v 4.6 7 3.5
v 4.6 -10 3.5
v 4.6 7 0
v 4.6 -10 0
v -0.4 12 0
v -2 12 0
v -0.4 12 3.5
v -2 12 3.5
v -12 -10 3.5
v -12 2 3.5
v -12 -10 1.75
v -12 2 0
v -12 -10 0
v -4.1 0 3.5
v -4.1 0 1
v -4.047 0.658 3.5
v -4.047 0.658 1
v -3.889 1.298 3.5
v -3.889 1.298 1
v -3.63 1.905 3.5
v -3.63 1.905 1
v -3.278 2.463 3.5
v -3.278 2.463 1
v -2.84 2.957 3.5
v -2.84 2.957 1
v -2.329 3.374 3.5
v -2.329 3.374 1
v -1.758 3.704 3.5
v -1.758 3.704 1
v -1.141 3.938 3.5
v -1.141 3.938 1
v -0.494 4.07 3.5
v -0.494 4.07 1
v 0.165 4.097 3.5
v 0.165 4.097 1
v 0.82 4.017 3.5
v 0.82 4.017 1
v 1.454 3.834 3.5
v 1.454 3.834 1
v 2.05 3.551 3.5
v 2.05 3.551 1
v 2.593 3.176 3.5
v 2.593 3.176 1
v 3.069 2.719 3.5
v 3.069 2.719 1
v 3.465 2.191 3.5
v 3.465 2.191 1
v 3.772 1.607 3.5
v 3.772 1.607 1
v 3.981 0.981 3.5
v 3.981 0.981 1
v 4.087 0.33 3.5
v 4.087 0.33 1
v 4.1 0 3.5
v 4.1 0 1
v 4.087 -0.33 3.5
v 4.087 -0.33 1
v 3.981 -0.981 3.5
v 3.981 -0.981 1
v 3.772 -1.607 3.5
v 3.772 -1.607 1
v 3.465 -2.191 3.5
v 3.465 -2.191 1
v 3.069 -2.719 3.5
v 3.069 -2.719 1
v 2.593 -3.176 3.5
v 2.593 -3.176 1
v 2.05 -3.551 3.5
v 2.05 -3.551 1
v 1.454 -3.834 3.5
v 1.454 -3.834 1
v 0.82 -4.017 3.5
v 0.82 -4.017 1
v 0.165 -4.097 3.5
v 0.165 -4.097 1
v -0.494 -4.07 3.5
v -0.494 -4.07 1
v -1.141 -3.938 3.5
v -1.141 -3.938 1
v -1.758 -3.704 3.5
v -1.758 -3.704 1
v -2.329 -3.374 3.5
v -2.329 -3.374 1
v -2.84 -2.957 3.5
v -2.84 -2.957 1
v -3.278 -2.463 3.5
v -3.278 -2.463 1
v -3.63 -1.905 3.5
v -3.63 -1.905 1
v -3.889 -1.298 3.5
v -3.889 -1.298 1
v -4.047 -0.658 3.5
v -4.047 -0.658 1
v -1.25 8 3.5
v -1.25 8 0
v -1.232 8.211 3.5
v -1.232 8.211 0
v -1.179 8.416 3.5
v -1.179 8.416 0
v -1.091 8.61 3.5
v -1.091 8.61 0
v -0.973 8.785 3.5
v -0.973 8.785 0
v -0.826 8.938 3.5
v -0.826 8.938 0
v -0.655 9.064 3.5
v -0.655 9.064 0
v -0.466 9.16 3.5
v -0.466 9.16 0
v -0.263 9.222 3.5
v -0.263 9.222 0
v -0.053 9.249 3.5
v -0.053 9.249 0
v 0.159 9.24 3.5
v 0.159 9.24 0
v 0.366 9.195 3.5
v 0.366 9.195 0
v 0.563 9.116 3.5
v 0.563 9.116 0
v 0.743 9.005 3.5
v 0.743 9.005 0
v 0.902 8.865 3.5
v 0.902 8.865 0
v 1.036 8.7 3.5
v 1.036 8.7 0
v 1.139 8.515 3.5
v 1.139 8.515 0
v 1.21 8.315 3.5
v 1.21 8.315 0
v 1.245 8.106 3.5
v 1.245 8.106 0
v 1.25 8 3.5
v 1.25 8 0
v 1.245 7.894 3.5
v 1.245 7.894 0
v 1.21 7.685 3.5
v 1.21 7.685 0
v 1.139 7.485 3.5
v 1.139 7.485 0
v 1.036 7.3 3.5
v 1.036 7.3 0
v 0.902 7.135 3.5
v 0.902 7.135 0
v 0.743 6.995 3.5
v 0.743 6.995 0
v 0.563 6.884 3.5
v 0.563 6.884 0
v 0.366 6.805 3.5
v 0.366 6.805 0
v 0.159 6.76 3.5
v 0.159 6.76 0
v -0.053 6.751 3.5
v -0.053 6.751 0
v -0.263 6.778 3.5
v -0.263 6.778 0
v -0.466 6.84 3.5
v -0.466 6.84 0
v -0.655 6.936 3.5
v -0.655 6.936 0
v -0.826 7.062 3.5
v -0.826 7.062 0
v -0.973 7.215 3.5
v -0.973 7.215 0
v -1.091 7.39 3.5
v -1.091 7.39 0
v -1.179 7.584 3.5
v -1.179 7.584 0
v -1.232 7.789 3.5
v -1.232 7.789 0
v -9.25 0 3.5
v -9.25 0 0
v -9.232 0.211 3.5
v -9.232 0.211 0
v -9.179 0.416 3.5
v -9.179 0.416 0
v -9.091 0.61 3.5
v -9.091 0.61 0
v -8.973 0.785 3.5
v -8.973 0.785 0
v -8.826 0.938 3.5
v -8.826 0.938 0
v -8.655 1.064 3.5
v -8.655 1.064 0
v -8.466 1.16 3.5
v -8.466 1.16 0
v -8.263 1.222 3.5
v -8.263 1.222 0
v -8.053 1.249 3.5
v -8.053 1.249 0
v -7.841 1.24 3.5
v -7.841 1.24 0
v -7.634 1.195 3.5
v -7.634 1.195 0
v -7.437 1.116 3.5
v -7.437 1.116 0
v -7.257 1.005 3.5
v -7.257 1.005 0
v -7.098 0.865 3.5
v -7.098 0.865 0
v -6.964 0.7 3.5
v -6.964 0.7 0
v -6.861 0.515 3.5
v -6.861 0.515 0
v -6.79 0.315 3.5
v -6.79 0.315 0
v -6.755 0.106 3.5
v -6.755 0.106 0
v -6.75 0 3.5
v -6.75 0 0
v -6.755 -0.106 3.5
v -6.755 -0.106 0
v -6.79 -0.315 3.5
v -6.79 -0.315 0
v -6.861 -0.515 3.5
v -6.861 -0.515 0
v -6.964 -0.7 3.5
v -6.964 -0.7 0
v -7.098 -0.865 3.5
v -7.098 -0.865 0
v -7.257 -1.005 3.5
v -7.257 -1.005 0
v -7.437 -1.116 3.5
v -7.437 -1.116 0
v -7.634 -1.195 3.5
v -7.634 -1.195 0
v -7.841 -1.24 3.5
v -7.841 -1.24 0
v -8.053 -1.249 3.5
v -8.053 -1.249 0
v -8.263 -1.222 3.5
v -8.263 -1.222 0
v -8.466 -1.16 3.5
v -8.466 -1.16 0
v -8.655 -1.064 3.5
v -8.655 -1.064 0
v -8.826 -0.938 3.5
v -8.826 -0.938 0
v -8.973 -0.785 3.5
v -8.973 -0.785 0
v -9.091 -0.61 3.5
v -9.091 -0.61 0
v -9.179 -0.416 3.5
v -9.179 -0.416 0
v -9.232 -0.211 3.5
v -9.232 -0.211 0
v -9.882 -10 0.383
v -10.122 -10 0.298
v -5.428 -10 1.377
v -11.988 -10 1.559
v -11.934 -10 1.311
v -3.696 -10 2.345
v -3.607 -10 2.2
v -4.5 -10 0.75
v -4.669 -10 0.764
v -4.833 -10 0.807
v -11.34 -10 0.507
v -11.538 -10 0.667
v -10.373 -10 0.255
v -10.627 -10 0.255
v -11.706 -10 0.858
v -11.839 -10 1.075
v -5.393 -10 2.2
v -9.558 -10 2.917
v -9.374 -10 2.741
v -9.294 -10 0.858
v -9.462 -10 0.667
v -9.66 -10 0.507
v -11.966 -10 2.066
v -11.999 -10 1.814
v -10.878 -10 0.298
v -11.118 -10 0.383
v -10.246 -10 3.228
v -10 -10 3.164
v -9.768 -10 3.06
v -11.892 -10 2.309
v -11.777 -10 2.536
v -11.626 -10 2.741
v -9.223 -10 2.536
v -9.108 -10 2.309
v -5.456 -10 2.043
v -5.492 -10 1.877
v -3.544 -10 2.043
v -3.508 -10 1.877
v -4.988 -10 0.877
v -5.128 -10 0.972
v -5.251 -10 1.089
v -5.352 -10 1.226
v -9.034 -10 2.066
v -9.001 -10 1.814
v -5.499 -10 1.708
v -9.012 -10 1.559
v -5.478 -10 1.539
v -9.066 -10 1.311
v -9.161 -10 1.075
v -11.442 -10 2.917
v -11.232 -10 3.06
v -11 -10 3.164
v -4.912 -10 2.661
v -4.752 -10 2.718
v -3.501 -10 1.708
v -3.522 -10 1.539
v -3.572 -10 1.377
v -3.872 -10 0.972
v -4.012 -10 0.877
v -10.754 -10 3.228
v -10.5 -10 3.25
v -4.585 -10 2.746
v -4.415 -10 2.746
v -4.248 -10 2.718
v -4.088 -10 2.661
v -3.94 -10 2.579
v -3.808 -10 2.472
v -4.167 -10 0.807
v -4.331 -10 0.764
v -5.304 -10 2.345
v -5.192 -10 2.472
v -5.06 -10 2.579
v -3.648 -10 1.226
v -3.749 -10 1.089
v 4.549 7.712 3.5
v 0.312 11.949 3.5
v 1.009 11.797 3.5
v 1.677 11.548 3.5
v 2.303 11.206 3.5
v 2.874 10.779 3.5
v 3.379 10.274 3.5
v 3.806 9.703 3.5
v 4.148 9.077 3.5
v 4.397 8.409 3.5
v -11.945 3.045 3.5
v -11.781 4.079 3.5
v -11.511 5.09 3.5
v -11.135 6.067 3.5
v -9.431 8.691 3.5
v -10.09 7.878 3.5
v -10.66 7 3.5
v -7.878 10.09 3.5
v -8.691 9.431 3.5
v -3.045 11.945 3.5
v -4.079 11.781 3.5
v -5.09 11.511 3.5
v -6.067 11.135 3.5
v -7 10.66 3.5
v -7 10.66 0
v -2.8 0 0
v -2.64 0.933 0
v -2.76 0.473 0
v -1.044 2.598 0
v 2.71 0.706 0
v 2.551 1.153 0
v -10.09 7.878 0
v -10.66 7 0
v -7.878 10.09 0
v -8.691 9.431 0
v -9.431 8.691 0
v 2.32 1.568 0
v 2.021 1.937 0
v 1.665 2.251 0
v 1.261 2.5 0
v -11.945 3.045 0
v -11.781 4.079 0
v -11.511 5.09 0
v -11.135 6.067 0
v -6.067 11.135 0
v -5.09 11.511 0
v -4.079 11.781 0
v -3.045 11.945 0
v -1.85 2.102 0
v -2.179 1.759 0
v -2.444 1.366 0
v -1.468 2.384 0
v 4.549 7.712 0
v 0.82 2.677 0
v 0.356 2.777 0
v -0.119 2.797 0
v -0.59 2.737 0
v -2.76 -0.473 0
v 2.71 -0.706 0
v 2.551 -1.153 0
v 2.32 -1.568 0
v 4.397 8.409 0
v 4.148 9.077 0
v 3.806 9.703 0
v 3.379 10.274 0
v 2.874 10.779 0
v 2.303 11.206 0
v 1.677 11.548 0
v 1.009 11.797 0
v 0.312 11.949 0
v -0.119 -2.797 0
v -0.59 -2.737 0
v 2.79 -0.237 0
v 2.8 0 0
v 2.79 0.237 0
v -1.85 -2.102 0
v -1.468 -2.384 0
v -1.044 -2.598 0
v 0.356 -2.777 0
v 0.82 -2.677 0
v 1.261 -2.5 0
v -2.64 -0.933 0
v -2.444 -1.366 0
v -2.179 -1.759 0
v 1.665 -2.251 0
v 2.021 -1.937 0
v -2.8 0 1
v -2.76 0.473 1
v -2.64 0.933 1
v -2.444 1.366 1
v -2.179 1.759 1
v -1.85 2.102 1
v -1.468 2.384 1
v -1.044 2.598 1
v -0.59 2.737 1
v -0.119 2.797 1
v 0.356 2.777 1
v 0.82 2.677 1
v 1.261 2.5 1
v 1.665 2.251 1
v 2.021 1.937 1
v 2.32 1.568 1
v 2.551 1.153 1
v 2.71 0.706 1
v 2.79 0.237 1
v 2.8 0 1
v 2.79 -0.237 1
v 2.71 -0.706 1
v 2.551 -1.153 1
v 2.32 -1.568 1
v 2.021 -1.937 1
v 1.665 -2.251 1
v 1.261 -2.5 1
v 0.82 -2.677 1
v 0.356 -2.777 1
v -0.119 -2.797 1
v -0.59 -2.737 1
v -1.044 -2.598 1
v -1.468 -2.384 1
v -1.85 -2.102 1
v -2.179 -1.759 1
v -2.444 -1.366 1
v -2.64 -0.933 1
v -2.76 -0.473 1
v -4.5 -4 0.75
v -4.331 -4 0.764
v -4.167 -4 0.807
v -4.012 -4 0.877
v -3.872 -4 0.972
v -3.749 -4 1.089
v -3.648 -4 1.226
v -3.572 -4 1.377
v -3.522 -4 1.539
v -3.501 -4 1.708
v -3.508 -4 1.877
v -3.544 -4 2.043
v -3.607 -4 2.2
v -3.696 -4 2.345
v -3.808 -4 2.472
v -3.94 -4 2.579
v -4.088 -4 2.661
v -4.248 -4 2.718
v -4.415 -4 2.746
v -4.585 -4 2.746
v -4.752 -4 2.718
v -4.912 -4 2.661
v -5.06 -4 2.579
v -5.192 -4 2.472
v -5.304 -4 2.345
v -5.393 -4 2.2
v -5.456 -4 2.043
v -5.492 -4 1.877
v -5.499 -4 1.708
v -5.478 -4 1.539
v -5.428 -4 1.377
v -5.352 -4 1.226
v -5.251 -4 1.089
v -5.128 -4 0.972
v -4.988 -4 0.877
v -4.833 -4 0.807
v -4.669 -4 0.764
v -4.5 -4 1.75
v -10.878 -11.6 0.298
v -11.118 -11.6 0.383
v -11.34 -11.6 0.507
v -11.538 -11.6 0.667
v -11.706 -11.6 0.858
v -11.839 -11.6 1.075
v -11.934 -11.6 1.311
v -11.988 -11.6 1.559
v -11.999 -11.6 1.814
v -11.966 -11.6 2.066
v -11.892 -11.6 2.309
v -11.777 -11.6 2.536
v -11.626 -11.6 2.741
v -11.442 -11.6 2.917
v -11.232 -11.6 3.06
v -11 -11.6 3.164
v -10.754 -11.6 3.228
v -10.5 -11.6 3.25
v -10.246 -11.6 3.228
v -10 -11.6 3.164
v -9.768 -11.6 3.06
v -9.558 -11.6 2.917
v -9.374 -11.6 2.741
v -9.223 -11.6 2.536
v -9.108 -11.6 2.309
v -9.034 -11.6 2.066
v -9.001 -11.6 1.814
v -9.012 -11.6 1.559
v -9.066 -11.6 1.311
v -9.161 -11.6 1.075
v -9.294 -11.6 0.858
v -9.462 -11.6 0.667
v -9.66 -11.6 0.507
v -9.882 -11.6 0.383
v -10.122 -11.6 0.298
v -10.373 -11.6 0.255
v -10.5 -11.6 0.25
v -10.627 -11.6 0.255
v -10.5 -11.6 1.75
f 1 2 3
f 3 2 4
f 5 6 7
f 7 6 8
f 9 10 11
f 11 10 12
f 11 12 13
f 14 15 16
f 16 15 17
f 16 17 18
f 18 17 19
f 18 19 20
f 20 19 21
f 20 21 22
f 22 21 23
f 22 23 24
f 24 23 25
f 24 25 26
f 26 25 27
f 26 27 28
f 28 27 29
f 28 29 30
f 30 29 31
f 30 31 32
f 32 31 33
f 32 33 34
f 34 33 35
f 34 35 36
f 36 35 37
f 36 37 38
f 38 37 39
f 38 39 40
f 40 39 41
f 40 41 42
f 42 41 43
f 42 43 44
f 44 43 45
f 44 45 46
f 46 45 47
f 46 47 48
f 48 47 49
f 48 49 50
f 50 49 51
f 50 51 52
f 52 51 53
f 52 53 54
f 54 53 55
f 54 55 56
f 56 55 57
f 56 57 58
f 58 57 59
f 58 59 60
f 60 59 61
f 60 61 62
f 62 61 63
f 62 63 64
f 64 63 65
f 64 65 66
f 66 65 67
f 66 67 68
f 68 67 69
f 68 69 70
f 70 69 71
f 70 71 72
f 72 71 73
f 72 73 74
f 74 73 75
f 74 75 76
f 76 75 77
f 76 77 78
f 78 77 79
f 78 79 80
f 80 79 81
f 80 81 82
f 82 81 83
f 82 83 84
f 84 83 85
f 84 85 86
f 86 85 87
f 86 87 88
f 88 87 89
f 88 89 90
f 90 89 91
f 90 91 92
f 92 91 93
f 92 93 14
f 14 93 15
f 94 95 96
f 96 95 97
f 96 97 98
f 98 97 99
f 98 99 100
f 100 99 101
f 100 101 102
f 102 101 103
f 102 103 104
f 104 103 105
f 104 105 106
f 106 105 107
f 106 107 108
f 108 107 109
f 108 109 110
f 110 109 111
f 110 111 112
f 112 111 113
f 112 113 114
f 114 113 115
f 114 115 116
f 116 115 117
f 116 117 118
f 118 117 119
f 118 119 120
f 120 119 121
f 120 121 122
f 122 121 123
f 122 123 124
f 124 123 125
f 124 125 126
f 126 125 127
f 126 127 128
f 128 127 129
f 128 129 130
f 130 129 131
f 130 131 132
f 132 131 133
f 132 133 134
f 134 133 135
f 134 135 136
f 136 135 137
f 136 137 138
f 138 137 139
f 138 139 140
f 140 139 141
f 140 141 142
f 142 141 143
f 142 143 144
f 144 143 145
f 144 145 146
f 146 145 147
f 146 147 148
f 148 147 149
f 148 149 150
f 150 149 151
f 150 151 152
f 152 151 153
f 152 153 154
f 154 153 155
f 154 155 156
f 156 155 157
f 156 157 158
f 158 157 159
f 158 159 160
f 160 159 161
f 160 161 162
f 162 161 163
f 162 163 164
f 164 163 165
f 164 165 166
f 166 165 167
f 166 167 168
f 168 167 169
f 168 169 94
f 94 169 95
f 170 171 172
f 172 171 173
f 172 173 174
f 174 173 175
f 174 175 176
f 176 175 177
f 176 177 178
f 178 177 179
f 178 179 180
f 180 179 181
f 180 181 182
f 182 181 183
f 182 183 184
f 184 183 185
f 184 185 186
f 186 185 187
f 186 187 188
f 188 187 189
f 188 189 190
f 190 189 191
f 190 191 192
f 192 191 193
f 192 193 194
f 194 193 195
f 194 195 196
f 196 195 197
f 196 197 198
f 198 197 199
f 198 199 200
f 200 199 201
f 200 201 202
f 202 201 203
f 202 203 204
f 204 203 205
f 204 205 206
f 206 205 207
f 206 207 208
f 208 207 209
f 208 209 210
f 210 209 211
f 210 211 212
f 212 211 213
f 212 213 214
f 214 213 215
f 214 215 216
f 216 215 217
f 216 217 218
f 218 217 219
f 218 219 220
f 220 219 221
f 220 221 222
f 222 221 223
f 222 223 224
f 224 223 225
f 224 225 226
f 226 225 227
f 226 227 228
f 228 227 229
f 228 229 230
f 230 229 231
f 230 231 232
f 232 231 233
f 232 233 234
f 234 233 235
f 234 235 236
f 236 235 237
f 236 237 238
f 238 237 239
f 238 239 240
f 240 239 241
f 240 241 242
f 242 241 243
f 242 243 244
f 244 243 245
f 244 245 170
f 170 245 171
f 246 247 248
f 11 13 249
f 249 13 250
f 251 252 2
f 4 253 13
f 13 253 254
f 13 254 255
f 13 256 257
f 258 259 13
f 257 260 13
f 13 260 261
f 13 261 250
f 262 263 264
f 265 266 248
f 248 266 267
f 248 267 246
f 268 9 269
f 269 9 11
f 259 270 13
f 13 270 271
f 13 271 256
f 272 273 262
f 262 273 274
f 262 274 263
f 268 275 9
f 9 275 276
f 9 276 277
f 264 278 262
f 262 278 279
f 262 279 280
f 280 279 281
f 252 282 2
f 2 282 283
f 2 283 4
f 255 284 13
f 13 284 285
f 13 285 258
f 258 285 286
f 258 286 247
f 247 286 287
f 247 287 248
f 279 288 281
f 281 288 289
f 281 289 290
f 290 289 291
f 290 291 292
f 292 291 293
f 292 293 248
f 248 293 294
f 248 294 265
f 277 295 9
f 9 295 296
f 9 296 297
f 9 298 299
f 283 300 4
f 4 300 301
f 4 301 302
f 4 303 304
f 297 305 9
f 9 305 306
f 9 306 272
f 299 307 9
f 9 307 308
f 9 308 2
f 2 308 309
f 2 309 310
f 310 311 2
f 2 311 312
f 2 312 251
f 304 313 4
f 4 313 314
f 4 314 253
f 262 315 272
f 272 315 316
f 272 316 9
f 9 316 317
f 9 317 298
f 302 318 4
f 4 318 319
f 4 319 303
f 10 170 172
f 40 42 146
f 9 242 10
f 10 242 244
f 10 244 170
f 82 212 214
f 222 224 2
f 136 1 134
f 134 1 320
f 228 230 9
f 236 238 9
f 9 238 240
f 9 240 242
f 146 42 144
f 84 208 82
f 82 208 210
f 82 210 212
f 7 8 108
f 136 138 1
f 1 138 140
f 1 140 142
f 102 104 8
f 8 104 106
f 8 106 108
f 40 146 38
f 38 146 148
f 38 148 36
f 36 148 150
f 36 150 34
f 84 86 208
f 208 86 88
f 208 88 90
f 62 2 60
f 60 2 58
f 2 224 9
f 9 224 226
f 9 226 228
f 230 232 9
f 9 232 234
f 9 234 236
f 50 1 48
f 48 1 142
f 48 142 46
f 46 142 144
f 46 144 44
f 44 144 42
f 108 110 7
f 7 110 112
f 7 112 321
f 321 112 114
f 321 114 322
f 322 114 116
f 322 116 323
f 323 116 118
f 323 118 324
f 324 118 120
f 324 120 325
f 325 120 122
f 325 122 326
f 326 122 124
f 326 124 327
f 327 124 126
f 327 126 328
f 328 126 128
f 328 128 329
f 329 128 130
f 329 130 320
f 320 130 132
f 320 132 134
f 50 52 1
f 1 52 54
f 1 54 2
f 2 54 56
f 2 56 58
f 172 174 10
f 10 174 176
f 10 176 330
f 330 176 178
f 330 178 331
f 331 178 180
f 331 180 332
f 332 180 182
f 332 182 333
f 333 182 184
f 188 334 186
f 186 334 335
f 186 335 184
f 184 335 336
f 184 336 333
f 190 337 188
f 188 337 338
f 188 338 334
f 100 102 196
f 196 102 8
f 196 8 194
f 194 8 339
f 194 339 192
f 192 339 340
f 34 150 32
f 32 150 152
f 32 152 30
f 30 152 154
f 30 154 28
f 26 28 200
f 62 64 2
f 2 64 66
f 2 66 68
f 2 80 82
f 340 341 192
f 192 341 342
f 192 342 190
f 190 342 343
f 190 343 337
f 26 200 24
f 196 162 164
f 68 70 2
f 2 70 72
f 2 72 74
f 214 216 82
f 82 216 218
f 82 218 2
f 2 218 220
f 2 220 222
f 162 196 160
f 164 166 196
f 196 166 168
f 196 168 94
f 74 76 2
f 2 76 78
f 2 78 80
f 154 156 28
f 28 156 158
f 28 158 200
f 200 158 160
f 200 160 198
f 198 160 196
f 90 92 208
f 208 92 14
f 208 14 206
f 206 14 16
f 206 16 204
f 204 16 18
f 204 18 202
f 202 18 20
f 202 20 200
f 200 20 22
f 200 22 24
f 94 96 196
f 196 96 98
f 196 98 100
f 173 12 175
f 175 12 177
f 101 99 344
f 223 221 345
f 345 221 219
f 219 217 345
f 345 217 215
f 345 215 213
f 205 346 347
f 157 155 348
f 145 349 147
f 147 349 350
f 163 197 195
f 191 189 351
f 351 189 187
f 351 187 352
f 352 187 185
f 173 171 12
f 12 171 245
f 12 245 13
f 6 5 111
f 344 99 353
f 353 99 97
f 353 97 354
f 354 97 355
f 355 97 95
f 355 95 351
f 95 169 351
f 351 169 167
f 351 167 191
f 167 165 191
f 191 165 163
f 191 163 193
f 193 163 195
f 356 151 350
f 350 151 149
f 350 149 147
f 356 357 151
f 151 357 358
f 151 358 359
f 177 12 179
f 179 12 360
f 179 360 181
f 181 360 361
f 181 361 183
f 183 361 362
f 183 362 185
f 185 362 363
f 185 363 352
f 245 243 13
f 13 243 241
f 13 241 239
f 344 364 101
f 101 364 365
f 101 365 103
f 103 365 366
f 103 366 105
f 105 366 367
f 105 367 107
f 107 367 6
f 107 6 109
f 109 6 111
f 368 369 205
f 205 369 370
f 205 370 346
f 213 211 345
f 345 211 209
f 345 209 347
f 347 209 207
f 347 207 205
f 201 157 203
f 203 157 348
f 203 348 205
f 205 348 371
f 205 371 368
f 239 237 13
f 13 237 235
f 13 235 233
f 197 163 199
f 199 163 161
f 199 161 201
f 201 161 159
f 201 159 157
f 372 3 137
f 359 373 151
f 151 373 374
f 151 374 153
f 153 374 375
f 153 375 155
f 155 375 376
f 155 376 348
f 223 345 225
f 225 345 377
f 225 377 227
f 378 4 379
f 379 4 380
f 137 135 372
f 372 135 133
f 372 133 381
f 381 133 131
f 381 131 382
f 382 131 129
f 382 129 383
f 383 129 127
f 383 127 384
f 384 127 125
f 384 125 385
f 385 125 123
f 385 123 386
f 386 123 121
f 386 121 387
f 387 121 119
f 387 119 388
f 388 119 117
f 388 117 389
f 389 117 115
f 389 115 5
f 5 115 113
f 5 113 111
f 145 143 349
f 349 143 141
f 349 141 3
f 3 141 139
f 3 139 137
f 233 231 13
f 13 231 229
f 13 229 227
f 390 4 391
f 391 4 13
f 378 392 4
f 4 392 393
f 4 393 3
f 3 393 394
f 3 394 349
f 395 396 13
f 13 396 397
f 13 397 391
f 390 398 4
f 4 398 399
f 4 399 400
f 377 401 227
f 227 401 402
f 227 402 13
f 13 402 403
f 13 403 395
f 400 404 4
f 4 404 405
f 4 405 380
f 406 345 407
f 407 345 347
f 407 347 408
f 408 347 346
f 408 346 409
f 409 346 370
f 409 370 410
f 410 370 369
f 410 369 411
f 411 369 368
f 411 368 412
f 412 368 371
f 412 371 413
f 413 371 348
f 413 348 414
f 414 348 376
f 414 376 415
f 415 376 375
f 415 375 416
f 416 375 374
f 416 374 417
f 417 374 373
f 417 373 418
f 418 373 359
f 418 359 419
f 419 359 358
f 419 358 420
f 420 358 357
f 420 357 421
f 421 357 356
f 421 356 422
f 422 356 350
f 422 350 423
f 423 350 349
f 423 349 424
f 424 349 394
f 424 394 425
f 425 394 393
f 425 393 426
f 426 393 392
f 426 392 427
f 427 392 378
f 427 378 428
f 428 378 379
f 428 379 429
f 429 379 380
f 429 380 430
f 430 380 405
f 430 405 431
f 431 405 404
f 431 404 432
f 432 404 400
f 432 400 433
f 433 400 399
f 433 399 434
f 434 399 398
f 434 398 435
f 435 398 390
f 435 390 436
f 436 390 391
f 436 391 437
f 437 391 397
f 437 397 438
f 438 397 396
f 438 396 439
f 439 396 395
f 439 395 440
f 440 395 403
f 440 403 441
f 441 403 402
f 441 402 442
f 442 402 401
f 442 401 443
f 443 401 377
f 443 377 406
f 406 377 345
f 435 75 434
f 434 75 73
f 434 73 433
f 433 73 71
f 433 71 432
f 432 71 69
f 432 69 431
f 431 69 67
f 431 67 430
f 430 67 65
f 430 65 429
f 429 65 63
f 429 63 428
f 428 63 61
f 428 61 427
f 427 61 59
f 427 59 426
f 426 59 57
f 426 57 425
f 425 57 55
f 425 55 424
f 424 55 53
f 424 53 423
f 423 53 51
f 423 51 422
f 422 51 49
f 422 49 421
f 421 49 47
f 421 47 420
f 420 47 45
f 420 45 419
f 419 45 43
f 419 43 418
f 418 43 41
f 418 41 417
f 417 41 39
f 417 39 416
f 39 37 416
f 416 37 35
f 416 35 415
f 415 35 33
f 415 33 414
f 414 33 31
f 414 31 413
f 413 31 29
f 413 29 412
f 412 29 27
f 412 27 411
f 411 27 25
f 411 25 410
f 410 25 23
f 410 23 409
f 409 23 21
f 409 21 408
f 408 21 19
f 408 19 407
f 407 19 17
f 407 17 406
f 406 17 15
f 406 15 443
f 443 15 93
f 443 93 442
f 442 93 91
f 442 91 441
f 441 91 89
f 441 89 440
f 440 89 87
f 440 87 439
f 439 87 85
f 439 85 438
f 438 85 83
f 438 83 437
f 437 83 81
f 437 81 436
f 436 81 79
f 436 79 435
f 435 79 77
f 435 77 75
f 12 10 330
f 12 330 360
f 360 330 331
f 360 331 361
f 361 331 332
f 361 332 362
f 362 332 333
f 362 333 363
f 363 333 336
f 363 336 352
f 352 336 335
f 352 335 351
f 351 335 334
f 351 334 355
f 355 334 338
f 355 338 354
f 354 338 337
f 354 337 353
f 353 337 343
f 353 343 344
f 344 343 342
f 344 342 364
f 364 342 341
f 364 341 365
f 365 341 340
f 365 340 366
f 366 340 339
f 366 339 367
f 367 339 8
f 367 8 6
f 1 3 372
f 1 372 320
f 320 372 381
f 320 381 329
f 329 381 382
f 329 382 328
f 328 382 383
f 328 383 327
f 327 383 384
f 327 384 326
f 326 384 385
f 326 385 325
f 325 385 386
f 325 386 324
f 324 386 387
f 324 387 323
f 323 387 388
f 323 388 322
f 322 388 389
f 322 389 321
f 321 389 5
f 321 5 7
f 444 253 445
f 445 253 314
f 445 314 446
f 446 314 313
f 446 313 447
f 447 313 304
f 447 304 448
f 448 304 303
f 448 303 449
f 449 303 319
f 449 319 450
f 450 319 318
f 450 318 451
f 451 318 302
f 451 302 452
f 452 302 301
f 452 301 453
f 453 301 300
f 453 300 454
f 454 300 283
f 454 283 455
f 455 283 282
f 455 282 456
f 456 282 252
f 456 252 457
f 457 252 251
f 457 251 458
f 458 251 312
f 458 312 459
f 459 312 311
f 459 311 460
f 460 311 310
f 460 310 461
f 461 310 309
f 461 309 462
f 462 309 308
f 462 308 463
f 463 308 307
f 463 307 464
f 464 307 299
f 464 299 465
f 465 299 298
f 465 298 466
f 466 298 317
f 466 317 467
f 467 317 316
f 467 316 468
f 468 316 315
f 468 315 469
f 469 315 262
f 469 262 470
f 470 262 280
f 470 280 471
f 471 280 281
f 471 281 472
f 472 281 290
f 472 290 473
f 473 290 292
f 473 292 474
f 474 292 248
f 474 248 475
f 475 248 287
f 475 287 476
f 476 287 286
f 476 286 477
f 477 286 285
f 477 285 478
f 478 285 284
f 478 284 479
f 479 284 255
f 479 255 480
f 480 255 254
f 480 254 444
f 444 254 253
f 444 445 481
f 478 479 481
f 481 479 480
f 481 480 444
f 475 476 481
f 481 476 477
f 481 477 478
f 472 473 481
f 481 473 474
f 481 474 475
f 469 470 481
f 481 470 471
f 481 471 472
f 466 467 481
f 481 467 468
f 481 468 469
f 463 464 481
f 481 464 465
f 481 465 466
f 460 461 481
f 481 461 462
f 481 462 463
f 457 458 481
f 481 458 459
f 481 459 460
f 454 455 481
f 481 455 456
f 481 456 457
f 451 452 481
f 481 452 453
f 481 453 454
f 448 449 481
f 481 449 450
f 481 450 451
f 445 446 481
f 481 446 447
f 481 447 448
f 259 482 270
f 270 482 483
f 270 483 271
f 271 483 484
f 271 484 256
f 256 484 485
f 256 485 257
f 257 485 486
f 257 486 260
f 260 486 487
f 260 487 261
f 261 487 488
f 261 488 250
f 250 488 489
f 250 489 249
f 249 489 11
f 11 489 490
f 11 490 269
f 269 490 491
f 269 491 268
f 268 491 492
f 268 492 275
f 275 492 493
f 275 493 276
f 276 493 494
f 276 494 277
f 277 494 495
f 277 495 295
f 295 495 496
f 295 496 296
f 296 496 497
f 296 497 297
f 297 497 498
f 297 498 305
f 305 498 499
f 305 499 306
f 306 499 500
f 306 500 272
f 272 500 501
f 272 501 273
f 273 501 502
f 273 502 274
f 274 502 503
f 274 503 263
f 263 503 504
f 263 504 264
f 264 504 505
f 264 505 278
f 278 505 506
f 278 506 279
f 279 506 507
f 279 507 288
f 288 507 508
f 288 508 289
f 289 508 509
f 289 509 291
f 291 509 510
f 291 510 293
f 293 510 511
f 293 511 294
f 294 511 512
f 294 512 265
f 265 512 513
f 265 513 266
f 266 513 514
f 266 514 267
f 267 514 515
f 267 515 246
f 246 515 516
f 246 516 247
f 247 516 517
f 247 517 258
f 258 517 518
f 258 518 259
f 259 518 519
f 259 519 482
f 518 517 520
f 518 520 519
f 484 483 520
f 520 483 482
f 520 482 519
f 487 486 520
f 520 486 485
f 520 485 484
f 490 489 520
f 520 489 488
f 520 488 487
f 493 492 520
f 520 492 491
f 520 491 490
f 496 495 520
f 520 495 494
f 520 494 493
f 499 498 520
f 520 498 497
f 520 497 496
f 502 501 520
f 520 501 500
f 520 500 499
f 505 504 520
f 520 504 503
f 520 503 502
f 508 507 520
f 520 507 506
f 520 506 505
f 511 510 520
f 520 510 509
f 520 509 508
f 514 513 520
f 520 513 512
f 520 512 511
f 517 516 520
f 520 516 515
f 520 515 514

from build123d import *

# Parameters (mm, degrees)
SKETCH_1_W          = 16.6
SKETCH_1_H          = 22
SKETCH_1_R          = 1.25
SKETCH_1_R_2        = 4.1
EXTRUDE_1_DEPTH     = 3.5
SKETCH_1_3_R        = 4.1
SKETCH_1_3_R_2      = 2.8
EXTRUDE_2_DEPTH     = 1
FILLET_1_R          = 10
FILLET_2_R          = 5
SKETCH_2_R          = 1
CUT_EXTRUDE_1_DEPTH = 6
SKETCH_2_3_R        = 1.5
EXTRUDE_3_DEPTH     = 1.6


with BuildPart() as part:
    # 草图1 → 凸台-拉伸1 (new body)
    with BuildSketch(Plane.XY):
        with Locations((-3.7, 1)):
            Rectangle(SKETCH_1_W, SKETCH_1_H)
        with Locations((-8, 0)):
            Circle(SKETCH_1_R, mode=Mode.SUBTRACT)
        Circle(SKETCH_1_R_2, mode=Mode.SUBTRACT)
        with Locations((0, 8)):
            Circle(SKETCH_1_R, mode=Mode.SUBTRACT)
    extrude(amount=EXTRUDE_1_DEPTH)

    # 草图1<3> → 凸台-拉伸2 (add)
    with BuildSketch(Plane.XY):
        Circle(SKETCH_1_3_R)
        Circle(SKETCH_1_3_R_2, mode=Mode.SUBTRACT)
    extrude(amount=EXTRUDE_2_DEPTH)

    # 圆角1
    fillet_1_edges = [part.edges().sort_by_distance(p)[0] for p in [
        (-12, 12, 1.75),
    ]]
    fillet(fillet_1_edges, radius=FILLET_1_R)

    # 圆角2
    fillet_2_edges = [part.edges().sort_by_distance(p)[0] for p in [
        (4.6, 12, 1.75),
    ]]
    fillet(fillet_2_edges, radius=FILLET_2_R)

    # 草图2 → 切除-拉伸1 (cut)
    with BuildSketch(Plane.XZ.offset(10)):
        with Locations((-4.5, 1.75)):
            Circle(SKETCH_2_R)
    extrude(amount=-CUT_EXTRUDE_1_DEPTH, mode=Mode.SUBTRACT)

    # 草图2<3> → 凸台-拉伸3 (add)
    with BuildSketch(Plane.XZ.offset(10)):
        with Locations((-10.5, 1.75)):
            Circle(SKETCH_2_3_R)
    extrude(amount=EXTRUDE_3_DEPTH)


solid = part.part
